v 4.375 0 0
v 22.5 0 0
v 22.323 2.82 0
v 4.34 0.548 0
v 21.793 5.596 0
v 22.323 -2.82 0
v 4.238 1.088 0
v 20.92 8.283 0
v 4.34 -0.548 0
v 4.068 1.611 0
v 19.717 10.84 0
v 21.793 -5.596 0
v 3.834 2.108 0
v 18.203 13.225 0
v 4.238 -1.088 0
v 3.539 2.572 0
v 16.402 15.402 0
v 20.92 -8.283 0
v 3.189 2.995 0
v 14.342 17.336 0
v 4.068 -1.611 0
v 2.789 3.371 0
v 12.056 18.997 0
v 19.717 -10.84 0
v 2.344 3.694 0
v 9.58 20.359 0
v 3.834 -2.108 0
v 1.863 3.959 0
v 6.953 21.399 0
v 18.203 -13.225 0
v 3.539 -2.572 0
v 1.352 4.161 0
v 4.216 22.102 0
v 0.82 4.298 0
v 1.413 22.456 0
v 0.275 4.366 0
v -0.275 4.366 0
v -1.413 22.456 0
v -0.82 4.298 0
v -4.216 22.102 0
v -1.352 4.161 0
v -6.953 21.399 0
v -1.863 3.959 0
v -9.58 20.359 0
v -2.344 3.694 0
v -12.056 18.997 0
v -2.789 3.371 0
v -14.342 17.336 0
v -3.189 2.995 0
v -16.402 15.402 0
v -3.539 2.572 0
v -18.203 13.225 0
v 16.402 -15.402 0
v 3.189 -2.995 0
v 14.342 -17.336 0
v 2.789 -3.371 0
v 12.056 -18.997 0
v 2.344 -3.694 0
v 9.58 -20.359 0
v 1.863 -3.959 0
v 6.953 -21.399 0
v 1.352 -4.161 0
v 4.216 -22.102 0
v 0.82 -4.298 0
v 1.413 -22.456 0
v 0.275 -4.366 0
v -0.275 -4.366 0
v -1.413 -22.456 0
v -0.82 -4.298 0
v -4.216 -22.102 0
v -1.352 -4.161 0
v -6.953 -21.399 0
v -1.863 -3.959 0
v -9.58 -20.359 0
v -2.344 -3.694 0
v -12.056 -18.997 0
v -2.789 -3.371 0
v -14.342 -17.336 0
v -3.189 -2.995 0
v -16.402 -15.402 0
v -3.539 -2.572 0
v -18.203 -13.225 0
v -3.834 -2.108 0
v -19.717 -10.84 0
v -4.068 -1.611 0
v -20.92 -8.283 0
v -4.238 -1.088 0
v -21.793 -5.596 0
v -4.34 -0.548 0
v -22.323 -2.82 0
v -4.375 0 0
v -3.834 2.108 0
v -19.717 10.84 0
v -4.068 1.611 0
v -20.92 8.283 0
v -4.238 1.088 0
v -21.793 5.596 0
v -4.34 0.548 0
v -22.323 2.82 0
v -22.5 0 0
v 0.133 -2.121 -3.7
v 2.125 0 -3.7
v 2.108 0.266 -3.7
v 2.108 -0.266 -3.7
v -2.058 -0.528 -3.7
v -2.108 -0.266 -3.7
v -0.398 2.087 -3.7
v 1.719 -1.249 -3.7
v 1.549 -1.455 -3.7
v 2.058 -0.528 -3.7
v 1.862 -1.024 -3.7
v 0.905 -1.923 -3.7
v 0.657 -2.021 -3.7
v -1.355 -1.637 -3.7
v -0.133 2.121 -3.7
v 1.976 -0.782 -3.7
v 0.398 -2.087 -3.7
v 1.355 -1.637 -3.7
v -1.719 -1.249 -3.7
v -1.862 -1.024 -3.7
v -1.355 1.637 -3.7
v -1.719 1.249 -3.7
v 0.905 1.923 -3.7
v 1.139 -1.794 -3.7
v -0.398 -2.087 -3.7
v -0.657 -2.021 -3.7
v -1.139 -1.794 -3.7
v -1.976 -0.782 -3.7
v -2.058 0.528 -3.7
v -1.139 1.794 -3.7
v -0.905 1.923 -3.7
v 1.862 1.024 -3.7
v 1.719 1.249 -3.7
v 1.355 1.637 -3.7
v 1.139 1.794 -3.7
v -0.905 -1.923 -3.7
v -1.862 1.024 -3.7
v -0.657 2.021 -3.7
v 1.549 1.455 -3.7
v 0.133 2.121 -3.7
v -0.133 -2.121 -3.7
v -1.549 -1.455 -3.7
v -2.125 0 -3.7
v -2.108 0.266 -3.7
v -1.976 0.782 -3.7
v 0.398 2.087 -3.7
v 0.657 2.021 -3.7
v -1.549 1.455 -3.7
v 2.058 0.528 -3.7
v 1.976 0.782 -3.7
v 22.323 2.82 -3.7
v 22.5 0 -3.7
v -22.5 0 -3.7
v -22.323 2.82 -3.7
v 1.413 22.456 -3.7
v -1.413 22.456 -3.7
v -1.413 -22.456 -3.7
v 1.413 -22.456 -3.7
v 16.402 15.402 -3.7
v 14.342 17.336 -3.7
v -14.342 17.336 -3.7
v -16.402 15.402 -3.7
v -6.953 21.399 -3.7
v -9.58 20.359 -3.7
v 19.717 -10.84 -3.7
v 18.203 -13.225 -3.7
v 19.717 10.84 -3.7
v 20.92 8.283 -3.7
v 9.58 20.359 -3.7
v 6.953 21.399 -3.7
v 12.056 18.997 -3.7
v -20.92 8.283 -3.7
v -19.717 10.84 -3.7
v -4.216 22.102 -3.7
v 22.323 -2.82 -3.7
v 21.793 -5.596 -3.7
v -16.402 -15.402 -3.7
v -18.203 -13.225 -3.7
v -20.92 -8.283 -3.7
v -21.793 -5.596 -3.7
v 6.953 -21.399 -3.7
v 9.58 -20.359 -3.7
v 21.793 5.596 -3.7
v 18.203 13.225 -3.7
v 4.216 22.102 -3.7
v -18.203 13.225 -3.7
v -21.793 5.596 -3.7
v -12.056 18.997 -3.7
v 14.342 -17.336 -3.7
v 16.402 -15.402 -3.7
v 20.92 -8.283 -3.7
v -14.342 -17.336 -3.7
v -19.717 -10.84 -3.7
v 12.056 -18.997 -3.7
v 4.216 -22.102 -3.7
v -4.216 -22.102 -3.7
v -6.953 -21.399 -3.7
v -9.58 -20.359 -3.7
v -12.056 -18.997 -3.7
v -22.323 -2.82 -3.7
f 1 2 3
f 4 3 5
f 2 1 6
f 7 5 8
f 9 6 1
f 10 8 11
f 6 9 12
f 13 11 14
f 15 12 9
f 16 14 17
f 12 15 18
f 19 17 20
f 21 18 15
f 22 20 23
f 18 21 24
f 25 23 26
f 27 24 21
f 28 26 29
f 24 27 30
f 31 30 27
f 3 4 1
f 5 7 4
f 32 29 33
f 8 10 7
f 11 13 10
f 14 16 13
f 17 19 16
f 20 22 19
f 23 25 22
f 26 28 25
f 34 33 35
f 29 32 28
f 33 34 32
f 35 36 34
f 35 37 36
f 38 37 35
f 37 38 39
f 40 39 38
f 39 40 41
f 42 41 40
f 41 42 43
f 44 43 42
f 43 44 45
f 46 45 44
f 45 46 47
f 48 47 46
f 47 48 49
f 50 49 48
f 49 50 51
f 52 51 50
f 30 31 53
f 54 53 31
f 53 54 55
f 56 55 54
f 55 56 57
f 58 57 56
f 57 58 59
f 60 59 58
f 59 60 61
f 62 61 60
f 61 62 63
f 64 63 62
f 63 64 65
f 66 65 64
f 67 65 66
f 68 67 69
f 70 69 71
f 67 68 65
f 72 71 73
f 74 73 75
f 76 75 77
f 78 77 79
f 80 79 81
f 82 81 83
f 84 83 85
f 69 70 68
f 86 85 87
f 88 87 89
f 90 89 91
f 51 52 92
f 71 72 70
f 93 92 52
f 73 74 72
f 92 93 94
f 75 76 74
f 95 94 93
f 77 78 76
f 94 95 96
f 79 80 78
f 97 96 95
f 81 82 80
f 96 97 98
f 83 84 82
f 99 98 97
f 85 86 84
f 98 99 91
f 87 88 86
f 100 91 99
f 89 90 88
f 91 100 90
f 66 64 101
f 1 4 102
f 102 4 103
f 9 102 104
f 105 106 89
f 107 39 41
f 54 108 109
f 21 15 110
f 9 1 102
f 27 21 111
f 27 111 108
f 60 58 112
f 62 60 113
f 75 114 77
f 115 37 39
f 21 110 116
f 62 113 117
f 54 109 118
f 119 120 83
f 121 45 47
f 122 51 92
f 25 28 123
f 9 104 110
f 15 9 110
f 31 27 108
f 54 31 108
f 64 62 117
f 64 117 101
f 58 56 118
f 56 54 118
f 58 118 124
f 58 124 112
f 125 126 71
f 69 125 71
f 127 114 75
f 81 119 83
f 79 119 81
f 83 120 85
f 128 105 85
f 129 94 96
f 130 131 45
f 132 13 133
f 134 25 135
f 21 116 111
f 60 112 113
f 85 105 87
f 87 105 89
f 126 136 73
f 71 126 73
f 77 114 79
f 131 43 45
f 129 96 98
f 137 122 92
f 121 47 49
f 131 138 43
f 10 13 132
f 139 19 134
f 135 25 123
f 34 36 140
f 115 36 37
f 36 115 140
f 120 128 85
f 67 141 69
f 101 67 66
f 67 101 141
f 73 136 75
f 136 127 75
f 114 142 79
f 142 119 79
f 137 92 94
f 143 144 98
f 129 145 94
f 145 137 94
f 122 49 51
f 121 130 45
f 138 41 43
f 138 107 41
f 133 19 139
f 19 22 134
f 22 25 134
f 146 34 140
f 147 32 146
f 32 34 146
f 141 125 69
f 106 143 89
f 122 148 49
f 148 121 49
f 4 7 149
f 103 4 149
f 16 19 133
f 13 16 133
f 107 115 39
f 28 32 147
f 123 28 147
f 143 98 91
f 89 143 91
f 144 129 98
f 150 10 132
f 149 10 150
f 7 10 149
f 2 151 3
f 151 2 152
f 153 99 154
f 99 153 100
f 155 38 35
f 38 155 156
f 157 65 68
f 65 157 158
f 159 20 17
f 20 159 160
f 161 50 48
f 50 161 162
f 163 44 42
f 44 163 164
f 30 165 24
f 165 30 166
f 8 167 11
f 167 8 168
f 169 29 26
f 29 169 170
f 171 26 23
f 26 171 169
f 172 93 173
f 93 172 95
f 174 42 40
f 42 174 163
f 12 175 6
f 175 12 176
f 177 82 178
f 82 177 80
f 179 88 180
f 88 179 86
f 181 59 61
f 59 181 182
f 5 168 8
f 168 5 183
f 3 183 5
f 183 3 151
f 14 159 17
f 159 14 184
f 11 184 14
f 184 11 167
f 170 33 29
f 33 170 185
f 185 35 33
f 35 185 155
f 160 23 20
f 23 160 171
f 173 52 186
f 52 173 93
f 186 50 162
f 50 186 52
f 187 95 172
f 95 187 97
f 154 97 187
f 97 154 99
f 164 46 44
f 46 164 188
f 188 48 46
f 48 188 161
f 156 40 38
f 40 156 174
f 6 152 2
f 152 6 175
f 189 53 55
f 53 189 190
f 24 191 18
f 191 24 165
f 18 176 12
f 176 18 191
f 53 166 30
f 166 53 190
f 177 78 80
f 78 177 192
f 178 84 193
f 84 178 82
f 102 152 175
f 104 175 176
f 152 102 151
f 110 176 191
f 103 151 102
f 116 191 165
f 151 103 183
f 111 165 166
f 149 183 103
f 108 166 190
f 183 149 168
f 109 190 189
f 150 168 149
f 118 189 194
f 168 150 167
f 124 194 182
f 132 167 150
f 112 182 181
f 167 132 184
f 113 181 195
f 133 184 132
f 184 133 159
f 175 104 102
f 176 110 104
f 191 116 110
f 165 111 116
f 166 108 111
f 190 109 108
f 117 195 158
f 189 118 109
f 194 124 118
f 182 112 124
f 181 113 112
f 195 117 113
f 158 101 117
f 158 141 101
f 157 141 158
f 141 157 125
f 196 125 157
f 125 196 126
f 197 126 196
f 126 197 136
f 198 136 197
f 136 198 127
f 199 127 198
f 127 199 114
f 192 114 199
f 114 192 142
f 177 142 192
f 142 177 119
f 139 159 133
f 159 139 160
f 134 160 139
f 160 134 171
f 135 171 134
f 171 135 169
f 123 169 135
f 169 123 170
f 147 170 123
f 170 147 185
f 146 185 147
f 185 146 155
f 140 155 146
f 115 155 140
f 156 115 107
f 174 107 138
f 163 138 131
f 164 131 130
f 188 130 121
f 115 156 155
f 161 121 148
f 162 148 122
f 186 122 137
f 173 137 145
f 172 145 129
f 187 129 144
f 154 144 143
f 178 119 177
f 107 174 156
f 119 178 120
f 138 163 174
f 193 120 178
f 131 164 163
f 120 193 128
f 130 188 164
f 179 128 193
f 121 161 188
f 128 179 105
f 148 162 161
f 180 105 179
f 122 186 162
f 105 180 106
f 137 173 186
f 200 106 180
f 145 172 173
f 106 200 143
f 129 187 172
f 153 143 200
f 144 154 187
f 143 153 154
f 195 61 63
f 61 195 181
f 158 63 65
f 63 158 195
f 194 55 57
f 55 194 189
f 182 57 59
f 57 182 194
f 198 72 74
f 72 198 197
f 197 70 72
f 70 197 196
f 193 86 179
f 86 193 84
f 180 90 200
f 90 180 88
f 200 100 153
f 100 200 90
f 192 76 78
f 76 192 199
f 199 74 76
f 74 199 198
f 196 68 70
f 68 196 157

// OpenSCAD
$fn = 50;


difference() {
	union() {
		translate(v = [0, 0, -3.7000000000]) {
			cylinder(h = 3.7000000000, r = 22.5000000000);
		}
	}
	union() {
		translate(v = [0, 0, 0]) {
			rotate(a = [0, 0, 0]) {
				difference() {
					union() {
						translate(v = [0, 0, -6.7000000000]) {
							cylinder(h = 6.7000000000, r = 2.0000000000);
						}
						translate(v = [0, 0, -3.7000000000]) {
							cylinder(h = 3.7000000000, r1 = 2.1250000000, r2 = 4.3750000000);
						}
						translate(v = [0, 0, -6.7000000000]) {
							cylinder(h = 6.7000000000, r = 2.1250000000);
						}
						translate(v = [0, 0, -6.7000000000]) {
							cylinder(h = 6.7000000000, r = 2.0000000000);
						}
					}
					union();
				}
			}
		}
	}
}
